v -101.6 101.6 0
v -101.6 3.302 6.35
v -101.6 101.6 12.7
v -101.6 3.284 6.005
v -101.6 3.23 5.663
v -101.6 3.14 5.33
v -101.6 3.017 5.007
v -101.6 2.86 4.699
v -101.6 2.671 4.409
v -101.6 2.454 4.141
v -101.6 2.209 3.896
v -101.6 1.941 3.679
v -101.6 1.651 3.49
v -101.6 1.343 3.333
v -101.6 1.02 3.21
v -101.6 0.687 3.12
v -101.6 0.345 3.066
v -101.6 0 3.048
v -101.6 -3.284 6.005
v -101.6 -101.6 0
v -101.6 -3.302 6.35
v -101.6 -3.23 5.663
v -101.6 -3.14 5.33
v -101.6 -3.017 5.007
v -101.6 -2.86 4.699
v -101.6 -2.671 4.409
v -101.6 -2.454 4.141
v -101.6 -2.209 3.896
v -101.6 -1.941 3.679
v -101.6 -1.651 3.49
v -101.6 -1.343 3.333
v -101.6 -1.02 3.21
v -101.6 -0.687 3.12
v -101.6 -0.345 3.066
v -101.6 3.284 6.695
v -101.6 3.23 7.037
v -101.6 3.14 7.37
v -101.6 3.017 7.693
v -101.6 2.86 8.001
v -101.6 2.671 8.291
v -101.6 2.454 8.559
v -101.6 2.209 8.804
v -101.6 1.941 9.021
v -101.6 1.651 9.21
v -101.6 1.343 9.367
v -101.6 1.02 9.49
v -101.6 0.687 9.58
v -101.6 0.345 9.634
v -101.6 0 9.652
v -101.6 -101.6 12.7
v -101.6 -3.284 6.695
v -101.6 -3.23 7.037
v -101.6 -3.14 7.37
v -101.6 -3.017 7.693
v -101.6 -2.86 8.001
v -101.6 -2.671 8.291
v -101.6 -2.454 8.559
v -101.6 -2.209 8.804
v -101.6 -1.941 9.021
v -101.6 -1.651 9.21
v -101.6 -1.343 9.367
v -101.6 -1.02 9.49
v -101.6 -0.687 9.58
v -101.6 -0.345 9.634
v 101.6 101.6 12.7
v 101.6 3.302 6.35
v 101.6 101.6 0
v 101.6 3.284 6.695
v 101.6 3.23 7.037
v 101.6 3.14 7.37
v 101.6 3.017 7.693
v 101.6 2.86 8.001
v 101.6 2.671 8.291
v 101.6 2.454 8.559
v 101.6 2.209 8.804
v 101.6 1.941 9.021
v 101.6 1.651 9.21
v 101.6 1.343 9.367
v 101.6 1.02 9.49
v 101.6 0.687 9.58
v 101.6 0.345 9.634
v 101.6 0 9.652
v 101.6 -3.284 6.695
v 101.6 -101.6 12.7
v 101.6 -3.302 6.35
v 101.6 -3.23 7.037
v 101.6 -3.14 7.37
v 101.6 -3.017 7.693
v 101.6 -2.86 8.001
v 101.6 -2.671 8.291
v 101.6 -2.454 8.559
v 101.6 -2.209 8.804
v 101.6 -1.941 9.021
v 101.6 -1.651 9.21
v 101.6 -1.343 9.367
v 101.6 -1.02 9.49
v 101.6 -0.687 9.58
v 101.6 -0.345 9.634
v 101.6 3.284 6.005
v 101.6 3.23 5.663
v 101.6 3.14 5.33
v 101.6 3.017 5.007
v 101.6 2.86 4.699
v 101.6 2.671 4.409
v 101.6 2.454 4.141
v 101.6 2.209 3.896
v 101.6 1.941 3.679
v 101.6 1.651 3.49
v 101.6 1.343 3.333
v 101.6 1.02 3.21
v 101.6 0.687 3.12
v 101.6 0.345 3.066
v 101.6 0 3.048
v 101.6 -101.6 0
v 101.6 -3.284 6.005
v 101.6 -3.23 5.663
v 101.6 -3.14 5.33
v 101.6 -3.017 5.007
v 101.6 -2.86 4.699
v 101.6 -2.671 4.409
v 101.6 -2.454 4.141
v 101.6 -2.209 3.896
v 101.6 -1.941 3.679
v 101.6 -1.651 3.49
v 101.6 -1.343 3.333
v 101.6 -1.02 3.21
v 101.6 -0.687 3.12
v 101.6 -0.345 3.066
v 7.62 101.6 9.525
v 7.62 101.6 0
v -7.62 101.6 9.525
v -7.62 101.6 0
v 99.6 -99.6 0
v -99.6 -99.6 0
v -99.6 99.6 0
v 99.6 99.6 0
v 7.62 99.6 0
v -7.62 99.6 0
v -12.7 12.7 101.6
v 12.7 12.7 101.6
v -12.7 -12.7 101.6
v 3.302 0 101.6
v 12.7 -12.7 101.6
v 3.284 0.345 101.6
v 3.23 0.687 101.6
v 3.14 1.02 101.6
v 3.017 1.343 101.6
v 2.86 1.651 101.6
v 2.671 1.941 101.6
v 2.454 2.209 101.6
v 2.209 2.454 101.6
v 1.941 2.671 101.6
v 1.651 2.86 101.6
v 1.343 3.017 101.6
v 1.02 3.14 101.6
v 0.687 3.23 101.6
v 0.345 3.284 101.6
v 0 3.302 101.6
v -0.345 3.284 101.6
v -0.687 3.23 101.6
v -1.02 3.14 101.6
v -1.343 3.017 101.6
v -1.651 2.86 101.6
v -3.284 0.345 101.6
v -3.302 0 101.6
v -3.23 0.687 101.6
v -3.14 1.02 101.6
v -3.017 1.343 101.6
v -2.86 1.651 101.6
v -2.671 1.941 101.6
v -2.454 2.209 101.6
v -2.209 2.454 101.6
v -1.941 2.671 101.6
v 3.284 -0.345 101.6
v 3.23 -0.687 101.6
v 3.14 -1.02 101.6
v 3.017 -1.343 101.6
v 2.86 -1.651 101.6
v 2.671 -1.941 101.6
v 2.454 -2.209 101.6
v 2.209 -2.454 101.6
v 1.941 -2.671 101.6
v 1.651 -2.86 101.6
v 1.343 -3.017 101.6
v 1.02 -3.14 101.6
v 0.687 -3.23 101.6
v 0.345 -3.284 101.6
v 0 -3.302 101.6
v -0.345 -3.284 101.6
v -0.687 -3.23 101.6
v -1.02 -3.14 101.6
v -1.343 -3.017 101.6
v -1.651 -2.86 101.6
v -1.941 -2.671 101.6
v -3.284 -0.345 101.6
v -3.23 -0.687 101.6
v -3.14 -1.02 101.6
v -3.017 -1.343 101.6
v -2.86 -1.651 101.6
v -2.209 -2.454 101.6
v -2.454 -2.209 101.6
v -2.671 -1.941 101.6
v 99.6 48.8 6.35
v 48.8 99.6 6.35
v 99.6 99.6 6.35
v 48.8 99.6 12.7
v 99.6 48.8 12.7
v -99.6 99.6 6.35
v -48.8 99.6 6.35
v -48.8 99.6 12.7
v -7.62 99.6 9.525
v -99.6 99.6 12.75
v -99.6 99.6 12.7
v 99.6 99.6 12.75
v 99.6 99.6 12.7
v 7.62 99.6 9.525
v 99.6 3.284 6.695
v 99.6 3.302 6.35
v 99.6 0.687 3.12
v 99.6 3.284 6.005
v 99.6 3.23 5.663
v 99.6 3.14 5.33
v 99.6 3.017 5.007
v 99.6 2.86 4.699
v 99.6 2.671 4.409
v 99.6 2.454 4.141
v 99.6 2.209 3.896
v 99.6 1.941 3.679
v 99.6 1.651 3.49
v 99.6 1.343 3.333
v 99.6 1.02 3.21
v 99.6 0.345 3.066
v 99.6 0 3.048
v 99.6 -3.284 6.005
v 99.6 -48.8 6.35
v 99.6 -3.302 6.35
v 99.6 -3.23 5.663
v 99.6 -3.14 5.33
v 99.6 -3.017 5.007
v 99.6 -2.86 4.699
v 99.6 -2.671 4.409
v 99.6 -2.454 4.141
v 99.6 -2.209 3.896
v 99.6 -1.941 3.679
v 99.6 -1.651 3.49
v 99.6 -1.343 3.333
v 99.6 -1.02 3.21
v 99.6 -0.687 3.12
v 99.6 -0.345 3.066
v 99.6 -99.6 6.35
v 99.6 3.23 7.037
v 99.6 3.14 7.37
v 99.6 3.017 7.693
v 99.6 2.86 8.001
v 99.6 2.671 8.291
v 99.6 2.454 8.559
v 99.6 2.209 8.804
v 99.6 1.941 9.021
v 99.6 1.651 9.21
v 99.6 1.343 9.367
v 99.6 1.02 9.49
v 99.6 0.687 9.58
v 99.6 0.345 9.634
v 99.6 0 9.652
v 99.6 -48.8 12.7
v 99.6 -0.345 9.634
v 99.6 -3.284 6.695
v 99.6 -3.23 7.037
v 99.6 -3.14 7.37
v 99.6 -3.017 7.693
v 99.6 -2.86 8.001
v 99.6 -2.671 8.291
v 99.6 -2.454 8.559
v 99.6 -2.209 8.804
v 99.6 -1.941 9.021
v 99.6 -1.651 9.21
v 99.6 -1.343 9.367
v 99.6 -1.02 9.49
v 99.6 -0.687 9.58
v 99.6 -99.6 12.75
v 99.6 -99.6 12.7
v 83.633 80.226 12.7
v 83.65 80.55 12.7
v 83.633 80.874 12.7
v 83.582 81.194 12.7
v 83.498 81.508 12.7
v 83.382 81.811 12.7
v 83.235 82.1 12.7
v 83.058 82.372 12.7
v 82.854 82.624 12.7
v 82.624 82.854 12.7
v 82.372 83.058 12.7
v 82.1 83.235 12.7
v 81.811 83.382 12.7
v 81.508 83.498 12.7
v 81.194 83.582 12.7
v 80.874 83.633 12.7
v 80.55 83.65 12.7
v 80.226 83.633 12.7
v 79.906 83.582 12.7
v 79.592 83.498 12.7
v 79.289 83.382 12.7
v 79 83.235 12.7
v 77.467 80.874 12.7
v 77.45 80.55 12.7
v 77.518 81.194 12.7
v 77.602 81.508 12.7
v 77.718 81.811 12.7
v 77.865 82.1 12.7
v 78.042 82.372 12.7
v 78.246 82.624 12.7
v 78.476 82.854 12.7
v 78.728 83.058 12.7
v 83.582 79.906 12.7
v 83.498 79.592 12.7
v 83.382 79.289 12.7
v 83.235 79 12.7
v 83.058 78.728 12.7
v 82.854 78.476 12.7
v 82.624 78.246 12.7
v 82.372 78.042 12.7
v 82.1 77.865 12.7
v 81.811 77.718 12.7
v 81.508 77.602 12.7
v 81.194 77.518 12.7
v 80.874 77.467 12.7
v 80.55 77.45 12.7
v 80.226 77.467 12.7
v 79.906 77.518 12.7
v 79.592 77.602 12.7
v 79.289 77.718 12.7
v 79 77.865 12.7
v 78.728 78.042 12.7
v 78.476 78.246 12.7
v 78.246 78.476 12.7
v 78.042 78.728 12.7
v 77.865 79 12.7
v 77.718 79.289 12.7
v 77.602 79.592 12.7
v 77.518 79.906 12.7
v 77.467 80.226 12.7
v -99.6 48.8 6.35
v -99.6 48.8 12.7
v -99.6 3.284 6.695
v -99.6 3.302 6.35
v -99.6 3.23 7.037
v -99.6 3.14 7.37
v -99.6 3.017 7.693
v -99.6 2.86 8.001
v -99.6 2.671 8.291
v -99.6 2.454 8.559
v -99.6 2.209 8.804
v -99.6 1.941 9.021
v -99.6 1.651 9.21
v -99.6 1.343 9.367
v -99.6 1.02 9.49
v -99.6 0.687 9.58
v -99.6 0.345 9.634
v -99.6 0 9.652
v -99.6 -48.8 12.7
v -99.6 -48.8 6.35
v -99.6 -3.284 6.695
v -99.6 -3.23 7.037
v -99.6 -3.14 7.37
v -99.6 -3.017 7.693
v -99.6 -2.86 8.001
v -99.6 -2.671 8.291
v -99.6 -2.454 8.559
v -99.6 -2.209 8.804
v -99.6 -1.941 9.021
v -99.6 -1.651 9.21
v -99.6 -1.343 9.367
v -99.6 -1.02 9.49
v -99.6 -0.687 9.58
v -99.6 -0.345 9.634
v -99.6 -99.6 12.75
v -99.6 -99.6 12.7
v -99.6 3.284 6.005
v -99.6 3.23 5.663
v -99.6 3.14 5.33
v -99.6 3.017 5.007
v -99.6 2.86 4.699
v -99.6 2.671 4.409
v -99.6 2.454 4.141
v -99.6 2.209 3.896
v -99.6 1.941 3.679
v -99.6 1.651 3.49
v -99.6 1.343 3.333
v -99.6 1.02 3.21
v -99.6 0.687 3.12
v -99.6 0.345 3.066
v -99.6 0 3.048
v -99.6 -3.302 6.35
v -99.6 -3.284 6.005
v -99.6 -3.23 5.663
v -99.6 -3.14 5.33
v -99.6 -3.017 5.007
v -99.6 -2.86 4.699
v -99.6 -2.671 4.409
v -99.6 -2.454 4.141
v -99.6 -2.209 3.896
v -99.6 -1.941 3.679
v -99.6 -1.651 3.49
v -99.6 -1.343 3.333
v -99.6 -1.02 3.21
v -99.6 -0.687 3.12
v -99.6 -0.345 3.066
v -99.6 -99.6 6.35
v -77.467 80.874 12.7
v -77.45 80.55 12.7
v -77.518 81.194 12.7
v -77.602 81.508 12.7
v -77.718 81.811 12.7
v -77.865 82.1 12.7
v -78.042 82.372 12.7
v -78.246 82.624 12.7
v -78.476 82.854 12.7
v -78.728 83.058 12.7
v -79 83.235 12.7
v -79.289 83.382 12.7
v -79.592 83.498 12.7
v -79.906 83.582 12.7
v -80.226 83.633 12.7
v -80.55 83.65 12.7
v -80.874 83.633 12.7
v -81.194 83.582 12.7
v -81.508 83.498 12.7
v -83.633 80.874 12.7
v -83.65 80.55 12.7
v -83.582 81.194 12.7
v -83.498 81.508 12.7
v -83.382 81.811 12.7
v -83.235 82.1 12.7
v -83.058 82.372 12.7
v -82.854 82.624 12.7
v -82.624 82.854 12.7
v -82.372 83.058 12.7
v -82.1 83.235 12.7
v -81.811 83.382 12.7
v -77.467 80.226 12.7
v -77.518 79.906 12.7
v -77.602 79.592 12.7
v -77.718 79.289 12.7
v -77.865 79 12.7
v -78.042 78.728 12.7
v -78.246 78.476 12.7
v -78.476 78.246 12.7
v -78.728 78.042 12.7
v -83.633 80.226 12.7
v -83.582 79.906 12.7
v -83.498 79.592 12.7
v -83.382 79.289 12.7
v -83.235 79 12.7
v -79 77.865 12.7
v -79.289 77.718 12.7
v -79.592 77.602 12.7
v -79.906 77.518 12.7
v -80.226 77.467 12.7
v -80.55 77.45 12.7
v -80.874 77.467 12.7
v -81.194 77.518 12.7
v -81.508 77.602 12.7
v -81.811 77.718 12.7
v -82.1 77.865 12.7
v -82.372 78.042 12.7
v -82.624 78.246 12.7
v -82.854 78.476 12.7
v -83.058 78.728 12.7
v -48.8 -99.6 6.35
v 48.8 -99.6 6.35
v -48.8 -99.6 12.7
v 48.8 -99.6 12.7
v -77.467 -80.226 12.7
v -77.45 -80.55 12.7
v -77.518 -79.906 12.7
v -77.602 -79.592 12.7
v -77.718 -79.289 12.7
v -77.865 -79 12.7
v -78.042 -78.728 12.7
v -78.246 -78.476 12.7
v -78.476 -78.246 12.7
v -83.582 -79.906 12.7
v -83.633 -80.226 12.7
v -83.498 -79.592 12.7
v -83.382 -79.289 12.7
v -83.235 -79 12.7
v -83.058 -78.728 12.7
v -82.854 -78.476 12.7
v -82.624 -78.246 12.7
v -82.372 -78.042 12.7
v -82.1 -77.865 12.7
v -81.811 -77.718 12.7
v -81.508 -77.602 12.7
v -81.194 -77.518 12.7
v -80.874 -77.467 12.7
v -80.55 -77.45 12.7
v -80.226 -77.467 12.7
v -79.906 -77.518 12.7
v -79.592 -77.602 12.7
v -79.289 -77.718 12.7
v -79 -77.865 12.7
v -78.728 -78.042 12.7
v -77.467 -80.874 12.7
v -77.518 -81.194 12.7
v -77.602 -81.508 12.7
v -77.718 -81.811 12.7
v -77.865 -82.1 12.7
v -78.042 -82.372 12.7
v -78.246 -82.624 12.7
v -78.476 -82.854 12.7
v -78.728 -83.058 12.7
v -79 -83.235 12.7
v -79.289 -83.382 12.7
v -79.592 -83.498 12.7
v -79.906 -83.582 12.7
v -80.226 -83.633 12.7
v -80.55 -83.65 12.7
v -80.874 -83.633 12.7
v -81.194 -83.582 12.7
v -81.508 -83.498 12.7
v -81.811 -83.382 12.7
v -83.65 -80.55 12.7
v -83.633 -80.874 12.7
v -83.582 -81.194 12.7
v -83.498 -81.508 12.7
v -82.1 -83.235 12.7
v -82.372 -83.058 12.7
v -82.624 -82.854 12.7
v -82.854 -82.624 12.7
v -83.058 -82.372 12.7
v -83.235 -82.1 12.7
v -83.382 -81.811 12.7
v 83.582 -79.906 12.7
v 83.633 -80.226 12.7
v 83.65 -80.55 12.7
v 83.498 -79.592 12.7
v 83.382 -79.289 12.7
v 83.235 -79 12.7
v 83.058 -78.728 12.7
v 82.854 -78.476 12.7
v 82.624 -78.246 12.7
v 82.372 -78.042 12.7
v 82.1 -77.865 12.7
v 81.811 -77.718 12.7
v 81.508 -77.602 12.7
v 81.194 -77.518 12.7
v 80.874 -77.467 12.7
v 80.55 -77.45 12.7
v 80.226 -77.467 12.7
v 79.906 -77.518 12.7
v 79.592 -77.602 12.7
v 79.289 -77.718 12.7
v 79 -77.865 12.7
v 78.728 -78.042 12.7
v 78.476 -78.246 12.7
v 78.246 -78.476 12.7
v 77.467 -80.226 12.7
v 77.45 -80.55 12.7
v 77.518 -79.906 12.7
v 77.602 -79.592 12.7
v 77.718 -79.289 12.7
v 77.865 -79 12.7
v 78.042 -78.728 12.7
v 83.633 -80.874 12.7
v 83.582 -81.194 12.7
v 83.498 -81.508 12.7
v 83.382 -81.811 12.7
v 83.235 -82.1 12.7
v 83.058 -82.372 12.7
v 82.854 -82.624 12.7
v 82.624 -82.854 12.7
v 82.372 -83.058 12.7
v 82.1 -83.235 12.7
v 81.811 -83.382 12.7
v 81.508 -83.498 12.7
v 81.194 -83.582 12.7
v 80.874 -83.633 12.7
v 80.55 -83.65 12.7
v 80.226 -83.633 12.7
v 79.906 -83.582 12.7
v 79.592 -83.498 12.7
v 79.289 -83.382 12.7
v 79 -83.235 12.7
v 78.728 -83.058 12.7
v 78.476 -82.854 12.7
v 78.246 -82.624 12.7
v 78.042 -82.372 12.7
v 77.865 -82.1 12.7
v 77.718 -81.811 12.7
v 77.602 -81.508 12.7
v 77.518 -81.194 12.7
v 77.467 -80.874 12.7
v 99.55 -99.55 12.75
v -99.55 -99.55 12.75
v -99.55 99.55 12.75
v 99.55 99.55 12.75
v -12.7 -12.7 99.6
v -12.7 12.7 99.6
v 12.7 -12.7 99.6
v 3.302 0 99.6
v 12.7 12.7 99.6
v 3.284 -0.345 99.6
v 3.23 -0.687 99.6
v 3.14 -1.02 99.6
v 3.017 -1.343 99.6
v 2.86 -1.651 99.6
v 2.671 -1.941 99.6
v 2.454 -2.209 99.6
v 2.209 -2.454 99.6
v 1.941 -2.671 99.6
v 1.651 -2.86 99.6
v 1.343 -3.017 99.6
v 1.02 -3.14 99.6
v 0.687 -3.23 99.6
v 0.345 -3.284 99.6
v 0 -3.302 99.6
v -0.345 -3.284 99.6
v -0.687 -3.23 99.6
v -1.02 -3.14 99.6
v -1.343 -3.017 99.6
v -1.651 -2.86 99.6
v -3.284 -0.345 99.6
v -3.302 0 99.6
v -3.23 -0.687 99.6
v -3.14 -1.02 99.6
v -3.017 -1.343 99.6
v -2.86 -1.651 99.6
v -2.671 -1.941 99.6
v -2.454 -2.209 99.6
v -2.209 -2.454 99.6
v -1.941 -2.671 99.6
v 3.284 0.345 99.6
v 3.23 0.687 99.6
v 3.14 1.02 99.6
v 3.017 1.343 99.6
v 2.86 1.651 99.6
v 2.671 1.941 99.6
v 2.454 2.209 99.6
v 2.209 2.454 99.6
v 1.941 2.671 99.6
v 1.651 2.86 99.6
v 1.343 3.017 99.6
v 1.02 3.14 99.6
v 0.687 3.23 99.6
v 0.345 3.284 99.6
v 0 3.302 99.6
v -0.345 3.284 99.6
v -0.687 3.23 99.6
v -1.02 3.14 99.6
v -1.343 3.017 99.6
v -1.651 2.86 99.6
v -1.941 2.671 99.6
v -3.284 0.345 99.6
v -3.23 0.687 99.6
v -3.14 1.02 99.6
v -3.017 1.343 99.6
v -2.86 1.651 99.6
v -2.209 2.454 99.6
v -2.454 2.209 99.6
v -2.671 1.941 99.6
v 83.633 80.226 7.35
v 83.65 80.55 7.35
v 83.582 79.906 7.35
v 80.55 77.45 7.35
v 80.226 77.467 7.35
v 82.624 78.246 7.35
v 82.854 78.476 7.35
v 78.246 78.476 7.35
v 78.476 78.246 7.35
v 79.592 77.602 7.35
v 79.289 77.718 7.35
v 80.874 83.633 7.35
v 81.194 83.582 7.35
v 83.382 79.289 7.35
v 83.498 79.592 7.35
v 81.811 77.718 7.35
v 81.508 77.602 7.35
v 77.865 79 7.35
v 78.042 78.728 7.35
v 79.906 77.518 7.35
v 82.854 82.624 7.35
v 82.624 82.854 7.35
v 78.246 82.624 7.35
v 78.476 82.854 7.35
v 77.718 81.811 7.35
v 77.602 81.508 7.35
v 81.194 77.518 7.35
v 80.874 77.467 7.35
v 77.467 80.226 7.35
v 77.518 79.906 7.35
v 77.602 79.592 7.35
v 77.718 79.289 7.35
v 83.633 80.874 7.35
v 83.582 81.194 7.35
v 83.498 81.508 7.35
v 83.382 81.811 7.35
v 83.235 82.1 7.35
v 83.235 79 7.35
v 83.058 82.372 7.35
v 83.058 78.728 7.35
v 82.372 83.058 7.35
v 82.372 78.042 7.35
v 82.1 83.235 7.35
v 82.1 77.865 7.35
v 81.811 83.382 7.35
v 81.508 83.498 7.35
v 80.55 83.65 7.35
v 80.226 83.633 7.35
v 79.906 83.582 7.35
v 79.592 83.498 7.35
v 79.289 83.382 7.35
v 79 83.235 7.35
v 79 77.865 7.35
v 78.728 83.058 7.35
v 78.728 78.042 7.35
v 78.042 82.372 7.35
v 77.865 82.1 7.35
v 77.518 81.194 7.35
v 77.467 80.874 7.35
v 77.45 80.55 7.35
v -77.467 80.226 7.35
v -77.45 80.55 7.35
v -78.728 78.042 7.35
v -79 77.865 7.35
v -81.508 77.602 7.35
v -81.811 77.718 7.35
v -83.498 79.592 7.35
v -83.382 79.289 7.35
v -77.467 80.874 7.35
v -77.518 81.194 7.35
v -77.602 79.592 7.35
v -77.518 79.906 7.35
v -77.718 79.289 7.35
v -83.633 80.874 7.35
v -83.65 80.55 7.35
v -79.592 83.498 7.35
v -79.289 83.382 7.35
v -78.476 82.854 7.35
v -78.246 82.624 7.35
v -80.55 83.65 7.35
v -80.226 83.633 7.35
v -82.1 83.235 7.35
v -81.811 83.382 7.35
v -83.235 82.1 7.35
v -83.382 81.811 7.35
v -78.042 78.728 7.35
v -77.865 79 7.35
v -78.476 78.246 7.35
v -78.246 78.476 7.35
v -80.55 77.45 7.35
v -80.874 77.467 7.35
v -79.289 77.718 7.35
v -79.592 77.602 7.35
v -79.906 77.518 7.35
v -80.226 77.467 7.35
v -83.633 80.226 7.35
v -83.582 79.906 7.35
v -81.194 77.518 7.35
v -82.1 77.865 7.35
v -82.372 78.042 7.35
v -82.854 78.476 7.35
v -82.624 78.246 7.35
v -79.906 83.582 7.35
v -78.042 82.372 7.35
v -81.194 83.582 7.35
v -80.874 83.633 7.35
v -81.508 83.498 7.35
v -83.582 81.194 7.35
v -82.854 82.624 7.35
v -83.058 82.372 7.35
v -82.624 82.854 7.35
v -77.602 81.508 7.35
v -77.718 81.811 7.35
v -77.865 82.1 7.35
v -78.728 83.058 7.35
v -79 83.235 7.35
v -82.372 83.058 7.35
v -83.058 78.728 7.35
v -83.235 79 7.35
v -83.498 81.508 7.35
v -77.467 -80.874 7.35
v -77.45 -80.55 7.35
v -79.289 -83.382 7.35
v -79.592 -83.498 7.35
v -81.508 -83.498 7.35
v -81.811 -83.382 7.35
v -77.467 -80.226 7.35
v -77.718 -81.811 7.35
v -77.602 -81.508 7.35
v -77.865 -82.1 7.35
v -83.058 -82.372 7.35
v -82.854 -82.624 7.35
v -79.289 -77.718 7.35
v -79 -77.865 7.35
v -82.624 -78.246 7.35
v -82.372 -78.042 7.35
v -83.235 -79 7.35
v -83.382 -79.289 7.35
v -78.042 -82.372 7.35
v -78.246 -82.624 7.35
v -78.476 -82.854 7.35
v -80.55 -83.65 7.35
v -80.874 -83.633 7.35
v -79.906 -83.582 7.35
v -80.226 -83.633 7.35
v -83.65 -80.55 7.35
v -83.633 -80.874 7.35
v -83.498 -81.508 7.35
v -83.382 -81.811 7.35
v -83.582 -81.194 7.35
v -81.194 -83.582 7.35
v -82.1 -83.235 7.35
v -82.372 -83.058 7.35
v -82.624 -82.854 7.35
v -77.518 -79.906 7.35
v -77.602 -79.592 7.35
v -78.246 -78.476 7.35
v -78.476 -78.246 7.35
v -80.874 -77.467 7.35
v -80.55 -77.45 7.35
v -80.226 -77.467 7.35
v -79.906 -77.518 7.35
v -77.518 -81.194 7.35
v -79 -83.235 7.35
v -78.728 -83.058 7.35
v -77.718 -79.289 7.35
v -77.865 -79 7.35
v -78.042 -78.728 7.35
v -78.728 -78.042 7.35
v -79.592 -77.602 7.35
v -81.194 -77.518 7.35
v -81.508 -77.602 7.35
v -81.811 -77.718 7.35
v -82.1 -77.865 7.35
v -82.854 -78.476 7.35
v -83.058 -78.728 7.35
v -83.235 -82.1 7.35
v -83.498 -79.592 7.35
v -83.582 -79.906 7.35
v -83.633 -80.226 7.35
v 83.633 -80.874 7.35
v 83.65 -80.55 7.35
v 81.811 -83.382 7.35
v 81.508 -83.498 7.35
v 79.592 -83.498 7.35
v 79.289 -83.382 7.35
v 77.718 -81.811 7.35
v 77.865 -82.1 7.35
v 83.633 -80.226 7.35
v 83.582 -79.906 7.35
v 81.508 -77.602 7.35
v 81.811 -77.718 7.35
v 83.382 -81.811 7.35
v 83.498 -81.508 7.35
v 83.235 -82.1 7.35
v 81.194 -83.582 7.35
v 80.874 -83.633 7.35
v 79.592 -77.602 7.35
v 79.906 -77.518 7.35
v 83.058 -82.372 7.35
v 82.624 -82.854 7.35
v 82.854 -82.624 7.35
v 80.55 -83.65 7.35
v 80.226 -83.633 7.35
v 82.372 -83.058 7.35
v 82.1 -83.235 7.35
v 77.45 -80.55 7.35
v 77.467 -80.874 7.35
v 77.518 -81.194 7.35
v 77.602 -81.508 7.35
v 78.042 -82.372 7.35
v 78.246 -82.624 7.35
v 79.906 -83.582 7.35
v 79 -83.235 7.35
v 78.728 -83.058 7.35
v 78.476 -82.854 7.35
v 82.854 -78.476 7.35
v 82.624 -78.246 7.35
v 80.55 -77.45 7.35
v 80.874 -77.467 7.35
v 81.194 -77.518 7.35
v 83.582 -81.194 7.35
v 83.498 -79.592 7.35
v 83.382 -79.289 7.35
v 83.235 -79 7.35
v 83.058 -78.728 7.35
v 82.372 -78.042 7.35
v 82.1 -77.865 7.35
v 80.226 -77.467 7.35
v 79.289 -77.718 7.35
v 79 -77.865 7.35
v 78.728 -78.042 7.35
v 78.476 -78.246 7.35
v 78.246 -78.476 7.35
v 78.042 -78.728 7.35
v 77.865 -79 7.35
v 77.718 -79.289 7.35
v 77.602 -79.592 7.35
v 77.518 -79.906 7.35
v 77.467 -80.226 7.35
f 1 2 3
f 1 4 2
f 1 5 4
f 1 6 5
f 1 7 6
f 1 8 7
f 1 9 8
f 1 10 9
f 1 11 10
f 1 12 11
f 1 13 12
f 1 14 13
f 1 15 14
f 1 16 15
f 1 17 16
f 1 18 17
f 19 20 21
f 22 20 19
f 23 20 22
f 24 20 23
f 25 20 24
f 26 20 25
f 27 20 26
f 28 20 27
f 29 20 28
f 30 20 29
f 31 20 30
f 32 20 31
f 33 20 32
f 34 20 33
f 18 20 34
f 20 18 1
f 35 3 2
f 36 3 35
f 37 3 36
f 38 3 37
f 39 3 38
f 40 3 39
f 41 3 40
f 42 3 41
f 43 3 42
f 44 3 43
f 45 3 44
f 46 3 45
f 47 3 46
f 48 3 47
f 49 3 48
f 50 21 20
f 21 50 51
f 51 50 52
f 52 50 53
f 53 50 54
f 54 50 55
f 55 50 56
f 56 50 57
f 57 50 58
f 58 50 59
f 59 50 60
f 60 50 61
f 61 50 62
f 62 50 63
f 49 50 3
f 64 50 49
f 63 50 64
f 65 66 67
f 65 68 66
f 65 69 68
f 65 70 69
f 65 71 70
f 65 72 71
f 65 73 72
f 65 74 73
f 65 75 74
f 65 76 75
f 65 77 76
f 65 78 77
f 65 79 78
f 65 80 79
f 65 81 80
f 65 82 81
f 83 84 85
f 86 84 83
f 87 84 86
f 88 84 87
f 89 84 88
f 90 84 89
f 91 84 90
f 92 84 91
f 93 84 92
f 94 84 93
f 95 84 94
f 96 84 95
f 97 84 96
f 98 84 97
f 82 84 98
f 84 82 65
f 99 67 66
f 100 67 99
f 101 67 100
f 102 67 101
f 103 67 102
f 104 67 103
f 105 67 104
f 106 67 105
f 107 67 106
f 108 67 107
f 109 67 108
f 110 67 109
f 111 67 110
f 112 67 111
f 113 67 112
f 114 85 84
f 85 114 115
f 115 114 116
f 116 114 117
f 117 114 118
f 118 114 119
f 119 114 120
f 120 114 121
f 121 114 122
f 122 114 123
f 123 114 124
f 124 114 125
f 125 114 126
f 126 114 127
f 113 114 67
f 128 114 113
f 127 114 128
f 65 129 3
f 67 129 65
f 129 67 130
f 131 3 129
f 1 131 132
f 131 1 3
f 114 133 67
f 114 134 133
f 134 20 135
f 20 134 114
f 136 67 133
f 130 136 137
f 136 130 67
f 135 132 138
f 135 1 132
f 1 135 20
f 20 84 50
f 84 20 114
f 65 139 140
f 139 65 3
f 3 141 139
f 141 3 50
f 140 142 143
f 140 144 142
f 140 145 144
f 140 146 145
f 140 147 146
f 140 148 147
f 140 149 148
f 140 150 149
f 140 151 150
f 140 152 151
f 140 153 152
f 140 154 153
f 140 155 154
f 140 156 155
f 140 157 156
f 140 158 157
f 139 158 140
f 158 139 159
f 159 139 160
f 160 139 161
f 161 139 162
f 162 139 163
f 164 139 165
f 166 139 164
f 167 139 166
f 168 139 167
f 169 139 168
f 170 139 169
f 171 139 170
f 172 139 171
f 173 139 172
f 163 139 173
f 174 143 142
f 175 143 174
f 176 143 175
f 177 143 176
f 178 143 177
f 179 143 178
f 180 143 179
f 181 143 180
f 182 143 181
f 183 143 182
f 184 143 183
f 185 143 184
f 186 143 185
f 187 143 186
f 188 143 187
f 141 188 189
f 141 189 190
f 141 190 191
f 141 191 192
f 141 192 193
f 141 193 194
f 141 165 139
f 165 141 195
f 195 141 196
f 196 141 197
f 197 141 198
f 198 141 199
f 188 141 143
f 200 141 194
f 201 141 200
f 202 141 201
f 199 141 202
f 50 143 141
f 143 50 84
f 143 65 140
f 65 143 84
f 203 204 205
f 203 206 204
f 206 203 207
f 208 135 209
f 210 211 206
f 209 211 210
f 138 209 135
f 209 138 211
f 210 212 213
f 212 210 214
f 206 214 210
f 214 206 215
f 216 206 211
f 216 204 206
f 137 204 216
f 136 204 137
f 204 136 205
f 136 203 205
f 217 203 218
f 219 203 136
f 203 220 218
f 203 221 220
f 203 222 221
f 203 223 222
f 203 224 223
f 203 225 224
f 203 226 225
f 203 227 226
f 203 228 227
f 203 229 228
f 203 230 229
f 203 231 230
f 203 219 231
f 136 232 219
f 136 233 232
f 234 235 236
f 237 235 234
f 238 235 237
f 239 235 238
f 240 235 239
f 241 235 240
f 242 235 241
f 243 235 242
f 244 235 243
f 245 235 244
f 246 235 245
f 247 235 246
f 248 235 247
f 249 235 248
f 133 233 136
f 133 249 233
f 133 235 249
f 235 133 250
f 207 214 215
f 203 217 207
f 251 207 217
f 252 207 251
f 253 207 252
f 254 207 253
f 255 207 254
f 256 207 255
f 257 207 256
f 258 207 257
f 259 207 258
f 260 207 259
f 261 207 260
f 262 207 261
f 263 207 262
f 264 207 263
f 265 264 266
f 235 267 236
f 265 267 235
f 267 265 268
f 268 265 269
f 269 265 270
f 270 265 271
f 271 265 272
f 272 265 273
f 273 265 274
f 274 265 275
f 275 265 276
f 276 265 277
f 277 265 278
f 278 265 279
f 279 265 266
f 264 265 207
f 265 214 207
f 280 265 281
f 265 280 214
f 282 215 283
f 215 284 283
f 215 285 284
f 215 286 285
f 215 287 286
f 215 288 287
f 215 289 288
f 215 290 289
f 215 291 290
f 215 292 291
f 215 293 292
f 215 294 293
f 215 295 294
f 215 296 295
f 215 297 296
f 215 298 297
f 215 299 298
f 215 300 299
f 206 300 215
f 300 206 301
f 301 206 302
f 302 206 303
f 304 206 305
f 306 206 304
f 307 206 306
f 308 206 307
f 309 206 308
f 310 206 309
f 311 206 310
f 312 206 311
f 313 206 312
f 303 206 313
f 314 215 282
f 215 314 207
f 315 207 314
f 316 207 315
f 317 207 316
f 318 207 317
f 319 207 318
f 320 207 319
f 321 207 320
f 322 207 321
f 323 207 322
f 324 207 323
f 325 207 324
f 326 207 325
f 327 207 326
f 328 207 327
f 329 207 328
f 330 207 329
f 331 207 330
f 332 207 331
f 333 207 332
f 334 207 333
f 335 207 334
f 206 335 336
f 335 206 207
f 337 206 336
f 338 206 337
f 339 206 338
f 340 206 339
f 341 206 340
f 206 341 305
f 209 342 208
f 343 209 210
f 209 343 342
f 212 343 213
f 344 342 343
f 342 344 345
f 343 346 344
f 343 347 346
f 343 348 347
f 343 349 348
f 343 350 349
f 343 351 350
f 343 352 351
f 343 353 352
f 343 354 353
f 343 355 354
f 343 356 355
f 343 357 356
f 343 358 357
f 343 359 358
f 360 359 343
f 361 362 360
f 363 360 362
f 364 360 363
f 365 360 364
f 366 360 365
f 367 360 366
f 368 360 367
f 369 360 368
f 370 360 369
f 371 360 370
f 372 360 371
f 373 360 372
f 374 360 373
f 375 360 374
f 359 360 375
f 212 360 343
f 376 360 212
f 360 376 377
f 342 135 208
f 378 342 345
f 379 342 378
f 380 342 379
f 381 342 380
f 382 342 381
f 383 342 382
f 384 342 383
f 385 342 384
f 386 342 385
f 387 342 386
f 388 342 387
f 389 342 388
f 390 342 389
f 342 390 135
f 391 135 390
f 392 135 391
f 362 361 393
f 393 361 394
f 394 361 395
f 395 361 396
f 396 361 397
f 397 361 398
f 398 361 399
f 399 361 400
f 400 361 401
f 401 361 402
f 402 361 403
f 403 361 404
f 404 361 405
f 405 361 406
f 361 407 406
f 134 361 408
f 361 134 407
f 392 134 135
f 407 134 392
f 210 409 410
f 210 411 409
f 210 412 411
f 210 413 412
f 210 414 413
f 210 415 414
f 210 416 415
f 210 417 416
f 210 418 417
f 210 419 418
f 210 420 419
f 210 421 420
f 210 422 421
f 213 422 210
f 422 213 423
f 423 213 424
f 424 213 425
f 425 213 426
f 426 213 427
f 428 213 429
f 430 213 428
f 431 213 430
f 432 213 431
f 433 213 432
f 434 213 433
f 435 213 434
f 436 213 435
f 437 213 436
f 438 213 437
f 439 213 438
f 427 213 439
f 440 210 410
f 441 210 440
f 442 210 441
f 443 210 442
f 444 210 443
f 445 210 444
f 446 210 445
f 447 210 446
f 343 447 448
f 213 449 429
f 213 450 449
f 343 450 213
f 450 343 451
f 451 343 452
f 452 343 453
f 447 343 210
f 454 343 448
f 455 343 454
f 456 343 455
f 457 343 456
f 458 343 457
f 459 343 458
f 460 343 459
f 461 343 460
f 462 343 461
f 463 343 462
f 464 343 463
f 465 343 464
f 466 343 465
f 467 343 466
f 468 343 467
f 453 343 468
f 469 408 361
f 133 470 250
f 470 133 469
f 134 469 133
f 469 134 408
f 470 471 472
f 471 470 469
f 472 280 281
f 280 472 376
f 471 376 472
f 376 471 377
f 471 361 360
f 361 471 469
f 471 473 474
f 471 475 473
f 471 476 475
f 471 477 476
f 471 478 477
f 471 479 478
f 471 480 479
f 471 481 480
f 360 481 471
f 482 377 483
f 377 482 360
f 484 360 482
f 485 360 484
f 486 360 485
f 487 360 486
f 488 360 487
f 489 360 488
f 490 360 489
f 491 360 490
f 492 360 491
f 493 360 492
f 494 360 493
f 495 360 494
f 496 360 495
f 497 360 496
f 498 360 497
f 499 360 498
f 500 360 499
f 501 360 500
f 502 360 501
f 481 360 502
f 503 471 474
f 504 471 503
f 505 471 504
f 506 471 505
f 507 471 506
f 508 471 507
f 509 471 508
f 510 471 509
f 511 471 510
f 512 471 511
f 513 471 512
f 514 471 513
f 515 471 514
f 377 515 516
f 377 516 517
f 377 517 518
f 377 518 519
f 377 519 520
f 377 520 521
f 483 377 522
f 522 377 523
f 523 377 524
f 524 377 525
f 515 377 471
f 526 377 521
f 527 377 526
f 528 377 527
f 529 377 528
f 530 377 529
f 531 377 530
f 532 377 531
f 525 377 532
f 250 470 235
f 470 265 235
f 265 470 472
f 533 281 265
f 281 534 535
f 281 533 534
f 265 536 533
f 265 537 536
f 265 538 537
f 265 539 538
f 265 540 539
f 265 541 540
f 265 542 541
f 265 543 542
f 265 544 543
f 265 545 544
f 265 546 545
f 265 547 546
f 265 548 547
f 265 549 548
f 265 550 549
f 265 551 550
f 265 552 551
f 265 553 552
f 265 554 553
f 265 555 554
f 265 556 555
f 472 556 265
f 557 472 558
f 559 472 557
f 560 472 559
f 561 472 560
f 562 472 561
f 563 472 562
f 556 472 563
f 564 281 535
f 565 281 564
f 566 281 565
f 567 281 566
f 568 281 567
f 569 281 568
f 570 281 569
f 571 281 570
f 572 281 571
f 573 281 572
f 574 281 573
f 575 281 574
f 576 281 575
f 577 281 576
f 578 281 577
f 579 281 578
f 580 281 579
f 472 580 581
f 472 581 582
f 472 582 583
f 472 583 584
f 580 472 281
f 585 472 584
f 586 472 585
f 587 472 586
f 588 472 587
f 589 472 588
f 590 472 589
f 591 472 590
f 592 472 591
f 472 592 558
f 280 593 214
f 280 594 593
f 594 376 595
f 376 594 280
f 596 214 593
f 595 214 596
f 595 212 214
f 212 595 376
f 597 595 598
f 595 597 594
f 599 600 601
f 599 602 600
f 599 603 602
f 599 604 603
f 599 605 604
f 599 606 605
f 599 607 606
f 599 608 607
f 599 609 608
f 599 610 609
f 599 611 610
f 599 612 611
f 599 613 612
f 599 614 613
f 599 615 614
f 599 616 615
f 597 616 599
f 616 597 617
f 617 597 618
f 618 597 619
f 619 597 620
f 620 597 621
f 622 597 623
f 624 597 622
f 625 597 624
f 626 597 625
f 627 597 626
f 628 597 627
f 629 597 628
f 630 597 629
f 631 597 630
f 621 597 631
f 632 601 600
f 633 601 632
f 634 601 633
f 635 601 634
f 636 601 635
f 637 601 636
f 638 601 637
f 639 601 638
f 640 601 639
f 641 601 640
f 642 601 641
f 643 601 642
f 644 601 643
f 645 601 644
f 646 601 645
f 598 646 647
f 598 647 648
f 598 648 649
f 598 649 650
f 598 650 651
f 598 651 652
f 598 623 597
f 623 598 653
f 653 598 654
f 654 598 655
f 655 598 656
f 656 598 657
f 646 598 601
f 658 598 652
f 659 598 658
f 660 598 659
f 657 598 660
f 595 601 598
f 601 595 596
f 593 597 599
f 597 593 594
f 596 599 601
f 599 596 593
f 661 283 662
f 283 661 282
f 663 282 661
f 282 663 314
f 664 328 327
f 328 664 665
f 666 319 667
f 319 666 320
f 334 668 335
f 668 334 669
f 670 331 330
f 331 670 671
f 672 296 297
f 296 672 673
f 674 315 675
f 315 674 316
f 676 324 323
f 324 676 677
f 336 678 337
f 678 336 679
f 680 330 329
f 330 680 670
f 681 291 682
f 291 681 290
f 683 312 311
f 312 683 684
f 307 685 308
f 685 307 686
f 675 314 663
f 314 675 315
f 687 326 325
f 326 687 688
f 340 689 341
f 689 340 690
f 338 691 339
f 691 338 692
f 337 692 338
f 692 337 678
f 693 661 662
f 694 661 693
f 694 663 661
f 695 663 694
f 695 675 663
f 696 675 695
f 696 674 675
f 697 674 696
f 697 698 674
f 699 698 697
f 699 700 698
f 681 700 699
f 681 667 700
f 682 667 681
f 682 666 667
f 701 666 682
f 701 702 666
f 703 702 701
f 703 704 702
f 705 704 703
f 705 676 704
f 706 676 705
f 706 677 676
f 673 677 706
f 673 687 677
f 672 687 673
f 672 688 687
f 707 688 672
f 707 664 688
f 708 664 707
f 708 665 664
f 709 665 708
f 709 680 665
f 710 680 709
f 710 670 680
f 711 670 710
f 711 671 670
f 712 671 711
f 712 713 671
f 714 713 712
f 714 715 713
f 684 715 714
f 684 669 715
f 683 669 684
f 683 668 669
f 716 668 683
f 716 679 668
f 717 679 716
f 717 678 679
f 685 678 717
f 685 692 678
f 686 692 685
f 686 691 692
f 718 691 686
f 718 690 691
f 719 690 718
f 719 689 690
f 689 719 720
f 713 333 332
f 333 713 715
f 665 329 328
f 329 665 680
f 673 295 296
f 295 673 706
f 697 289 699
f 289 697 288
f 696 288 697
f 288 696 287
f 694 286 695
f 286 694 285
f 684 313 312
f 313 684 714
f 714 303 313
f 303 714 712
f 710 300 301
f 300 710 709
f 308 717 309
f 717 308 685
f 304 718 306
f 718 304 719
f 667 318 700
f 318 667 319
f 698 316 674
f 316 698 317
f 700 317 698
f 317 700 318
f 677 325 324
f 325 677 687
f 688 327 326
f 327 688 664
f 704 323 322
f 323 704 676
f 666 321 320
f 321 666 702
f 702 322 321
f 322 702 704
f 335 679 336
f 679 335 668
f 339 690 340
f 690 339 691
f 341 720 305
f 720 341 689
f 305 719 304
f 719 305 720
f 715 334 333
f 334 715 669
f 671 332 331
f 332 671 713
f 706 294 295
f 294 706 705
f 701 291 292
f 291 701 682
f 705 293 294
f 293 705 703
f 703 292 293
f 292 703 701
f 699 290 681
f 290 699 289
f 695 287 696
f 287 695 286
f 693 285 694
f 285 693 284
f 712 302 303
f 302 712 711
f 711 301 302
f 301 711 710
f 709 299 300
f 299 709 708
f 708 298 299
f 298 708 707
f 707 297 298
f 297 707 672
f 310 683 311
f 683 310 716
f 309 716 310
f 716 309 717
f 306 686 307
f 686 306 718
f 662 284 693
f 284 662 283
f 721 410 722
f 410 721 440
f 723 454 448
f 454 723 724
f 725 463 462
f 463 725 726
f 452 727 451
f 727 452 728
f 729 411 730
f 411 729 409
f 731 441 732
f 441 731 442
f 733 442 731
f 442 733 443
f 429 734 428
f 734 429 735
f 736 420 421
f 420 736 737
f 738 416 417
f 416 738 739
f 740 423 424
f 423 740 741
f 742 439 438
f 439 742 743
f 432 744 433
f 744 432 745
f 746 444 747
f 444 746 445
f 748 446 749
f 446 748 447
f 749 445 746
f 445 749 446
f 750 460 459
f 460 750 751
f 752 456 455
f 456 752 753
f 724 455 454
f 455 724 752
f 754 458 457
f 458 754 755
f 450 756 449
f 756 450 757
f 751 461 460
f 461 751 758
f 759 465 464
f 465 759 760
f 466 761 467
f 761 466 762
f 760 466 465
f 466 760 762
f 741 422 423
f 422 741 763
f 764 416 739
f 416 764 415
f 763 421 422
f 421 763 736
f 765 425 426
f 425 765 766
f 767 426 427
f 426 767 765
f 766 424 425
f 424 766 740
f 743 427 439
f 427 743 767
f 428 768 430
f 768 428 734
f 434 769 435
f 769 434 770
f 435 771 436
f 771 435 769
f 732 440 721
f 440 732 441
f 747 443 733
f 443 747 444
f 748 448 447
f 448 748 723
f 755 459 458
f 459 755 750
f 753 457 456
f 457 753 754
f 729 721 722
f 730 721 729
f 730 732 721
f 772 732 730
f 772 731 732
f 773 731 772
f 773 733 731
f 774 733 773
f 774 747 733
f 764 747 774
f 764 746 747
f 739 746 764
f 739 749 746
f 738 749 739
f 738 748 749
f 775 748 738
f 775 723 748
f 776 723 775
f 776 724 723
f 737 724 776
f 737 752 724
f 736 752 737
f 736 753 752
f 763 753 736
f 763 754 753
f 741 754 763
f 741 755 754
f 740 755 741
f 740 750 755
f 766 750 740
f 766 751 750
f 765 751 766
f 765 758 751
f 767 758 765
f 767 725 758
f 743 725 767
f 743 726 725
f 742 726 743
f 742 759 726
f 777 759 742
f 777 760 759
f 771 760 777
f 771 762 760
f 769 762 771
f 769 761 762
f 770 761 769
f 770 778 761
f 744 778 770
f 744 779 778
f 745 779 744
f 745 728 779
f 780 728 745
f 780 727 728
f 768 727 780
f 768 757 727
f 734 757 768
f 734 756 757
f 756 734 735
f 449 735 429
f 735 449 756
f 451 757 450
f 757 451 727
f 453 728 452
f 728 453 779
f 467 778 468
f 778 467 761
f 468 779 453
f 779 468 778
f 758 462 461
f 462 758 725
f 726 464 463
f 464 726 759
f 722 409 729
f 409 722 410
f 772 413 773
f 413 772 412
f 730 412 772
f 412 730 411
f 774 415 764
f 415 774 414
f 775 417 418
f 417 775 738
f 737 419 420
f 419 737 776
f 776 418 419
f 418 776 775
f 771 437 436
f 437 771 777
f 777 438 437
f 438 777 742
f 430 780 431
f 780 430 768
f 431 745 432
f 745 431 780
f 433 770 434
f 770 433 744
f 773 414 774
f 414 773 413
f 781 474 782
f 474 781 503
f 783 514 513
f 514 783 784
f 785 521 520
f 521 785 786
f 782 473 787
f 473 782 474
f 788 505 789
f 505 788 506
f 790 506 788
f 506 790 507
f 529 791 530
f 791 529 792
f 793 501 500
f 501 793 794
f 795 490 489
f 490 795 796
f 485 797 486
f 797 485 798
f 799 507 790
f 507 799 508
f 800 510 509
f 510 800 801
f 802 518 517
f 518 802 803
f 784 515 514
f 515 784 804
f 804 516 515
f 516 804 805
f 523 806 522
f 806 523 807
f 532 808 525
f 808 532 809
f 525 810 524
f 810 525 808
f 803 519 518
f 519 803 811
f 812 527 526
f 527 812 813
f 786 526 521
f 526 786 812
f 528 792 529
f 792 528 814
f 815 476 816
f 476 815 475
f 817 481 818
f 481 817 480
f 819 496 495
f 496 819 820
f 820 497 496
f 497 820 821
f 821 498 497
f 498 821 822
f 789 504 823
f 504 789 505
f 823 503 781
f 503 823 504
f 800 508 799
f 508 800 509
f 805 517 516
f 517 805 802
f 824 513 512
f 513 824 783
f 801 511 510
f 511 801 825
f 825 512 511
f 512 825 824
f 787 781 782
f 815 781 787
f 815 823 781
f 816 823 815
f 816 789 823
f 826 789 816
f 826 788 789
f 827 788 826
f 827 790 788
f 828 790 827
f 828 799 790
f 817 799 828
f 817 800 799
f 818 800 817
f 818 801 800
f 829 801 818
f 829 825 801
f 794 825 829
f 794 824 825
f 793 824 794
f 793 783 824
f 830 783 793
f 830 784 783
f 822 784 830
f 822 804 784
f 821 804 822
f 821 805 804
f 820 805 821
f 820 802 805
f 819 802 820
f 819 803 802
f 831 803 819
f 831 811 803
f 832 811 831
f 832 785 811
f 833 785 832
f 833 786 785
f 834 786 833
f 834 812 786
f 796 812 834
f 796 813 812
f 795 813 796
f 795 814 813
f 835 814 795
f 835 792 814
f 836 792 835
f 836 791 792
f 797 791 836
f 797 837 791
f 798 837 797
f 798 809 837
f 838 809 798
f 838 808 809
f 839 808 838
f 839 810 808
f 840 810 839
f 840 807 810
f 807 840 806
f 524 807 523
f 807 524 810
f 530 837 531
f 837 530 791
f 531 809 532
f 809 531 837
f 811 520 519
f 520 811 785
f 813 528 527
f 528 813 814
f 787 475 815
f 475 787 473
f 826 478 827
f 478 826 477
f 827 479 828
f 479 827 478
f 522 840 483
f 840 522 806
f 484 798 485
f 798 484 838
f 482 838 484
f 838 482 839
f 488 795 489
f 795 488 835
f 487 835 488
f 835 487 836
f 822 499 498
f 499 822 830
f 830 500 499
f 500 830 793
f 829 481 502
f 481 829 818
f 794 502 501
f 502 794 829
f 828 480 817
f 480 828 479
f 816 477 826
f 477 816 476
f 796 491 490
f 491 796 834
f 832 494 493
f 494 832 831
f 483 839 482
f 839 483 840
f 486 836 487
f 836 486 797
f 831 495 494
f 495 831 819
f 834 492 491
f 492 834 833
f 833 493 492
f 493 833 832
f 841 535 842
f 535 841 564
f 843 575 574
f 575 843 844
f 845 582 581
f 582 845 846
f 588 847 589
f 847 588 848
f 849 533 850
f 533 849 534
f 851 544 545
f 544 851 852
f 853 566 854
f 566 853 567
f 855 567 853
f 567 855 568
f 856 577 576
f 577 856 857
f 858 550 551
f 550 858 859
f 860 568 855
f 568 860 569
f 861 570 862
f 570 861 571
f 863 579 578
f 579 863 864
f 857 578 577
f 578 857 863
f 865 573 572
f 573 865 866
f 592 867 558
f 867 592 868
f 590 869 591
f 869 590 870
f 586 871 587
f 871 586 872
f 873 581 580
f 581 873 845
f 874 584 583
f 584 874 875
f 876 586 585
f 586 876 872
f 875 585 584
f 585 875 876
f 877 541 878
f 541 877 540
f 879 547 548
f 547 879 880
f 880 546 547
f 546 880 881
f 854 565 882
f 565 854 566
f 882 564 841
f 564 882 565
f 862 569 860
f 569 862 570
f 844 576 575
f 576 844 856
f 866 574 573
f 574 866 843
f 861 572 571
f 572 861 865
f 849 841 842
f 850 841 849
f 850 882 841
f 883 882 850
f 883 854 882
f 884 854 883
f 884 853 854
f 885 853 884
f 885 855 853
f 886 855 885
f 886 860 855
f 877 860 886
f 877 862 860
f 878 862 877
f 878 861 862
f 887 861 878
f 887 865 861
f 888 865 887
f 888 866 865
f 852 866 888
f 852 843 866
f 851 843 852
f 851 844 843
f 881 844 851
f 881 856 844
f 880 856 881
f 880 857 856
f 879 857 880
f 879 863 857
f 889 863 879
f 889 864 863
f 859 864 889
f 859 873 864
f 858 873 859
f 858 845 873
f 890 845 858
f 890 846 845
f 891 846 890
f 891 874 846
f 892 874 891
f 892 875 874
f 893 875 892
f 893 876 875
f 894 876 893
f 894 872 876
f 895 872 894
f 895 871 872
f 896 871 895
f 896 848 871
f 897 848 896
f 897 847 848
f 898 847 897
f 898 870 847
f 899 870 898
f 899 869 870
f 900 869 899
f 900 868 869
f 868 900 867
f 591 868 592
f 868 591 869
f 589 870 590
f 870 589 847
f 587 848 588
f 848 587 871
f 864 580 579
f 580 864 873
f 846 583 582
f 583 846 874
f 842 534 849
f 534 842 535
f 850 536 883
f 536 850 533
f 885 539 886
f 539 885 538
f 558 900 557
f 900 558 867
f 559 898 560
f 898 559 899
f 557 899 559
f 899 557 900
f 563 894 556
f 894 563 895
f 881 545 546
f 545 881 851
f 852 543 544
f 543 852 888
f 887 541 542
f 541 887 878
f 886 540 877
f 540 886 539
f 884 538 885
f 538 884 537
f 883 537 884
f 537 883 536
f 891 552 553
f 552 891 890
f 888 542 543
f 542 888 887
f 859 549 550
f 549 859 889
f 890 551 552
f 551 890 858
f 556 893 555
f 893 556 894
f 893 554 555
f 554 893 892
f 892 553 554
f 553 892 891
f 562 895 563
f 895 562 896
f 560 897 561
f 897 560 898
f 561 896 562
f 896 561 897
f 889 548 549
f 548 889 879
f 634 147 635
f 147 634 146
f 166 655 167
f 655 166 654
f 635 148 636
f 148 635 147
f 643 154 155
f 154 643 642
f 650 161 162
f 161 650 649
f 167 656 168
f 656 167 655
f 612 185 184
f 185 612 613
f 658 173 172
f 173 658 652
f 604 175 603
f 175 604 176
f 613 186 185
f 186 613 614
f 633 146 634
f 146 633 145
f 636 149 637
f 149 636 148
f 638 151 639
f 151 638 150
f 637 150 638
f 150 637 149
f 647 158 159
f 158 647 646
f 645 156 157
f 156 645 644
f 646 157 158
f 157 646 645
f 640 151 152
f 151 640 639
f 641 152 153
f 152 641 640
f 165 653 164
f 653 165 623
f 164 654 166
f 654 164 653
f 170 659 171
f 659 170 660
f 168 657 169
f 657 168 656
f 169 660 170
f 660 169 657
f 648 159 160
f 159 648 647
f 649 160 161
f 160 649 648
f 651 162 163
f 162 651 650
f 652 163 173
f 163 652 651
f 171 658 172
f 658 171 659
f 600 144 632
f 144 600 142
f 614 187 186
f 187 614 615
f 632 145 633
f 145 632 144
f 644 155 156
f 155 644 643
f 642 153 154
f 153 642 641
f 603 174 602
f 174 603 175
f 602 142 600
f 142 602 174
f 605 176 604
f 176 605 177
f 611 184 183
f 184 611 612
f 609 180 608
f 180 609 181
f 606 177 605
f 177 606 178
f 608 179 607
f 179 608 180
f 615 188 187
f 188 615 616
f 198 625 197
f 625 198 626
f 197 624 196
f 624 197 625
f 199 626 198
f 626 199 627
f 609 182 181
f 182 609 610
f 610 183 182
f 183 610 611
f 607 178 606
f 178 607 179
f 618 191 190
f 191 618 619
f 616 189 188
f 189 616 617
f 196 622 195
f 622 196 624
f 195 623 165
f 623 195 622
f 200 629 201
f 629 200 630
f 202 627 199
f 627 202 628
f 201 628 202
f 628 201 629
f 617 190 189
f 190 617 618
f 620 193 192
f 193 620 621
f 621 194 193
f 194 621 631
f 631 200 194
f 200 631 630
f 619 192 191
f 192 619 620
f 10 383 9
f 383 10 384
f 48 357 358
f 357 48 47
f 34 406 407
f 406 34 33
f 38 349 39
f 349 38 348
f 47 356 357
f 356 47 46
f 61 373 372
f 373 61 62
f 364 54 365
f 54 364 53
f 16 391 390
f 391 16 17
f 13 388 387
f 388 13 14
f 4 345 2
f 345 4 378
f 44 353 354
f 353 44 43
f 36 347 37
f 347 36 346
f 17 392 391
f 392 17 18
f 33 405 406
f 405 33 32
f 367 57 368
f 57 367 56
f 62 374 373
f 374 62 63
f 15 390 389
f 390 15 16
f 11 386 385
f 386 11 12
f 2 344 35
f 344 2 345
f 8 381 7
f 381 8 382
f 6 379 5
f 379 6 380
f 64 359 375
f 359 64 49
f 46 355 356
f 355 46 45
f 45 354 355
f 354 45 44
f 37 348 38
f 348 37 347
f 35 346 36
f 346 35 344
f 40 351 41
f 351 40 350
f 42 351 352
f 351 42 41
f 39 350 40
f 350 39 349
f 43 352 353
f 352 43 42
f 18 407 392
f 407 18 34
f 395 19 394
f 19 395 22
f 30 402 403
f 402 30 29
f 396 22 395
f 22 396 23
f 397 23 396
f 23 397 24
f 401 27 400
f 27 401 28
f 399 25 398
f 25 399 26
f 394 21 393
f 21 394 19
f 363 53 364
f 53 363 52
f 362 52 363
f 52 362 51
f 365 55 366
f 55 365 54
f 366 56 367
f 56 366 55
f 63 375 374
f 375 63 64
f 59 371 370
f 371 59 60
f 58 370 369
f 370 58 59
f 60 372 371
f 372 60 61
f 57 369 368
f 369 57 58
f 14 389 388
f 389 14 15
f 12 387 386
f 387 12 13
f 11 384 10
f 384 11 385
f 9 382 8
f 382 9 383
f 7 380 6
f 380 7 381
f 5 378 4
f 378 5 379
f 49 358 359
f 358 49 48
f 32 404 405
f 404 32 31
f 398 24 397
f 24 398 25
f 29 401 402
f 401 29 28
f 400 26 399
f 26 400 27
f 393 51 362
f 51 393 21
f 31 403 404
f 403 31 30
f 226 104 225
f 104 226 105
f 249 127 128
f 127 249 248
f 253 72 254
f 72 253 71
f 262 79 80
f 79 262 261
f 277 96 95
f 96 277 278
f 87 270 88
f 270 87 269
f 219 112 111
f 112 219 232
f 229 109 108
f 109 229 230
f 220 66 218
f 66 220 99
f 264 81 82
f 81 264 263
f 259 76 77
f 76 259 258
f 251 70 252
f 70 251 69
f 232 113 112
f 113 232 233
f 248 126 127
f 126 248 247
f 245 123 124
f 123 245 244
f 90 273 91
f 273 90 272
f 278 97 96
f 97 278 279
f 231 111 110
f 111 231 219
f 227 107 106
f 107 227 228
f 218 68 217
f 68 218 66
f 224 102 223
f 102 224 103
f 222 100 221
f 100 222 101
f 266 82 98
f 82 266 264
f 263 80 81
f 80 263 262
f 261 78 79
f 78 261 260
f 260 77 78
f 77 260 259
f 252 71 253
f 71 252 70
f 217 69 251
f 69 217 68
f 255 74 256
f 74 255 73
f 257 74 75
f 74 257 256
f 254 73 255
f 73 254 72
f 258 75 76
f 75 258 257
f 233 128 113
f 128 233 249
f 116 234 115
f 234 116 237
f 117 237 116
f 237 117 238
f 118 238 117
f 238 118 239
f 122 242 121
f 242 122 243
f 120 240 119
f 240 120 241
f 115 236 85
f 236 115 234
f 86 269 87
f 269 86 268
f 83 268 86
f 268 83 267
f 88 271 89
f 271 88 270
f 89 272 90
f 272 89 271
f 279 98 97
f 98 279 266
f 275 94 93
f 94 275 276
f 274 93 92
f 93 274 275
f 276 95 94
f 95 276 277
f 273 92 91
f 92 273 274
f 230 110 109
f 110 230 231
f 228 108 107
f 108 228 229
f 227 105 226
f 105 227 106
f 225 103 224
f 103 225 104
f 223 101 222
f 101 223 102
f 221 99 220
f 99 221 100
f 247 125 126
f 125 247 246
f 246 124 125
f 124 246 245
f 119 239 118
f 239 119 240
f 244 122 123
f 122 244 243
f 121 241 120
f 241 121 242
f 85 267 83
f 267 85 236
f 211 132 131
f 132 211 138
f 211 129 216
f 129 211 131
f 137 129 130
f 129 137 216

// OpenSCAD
// All-Seeing Eye Enclosure Design
// Version: 1.6
// Changes: Added corner magnet blocks to mate with Base Plate v1.0

/* [Global Dimensions] */
INCH = 25.4;

// Base Specifications
base_width = 8.0 * INCH;
base_height = 0.5 * INCH; // The vertical rim before slope
wall_thickness = 2.0;

// Pyramid Specifications
slope_angle = 45; 
top_width = 1.0 * INCH; 
pyramid_height = (base_width - top_width) / 2;

// Connector Dimensions
sma_hole_diameter = 0.26 * INCH;
usb_cutout_width = 0.6 * INCH;
usb_cutout_height = 0.3 * INCH;

// Magnetic Latch Specifications
tri_leg = 2.0 * INCH; // Size of corner block
// Base plate is external/underneath. Tabs project 0.25 inch into shell.
block_start_z = 0.25 * INCH;
block_height = 0.25 * INCH; 
magnet_diam = 6.2;
// We drill from the top of the block (Z=0.75) downwards.
// We want the magnet close to the bottom of the block (Z=0.5).
// magnet_hole_depth should be block_height - 1mm bridge.
magnet_hole_depth = block_height - 1.0; 

/* [Rendering resolution] */
$fn = 60;

module shell_main() {
    difference() {
        // 1. Positive Volume (The Shell)
        union() {
            // A. Base Prism
            translate([0, 0, base_height/2])
                cube([base_width, base_width, base_height], center=true);
            
            // B. Pyramid Frustum
            translate([0, 0, base_height])
                pyramid_frustum(base_width, top_width, pyramid_height);
        }

        // 2. Negative Volume (The Hollow)
        union() {
            difference() {
                // A. Hollow Base
                translate([0, 0, base_height/2])
                    cube([base_width - 2*wall_thickness, base_width - 2*wall_thickness, base_height + 0.1], center=true);
                
                // EXCLUDE corners from the hollow (creating solid blocks)
                // NOW RELEVEANT because blocks start at 0.25", inside this 0.5" zone.
                if(true) {
                    offset_dist = base_width/2 - wall_thickness;
                    translate([0,0, block_start_z])
                        corner_blocks(tri_leg, block_height, offset_dist);
                }
            }

            difference() {
                // B. Hollow Pyramid
                inner_height = pyramid_height - wall_thickness;
                inner_base_width = base_width - 2*wall_thickness;
                inner_top_width = top_width;

                translate([0, 0, base_height])
                     pyramid_frustum(inner_base_width, inner_top_width, inner_height);
                
                // EXCLUDE corners from the hollow pyramid here
                if(true) {
                    offset_dist = base_width/2 - wall_thickness;
                    
                    // Blocks start at block_start_z (0.5).
                    // This is relative to Z=0.
                    // The Hollow Pyramid is translated to base_height.
                    // So we must match coordinates.
                    translate([0,0, block_start_z])
                        corner_blocks(tri_leg, block_height, offset_dist);
                }
            }
        }

        // 3. Cutouts / Holes
        
        // A. Top SMA Connector (Apex)
        translate([0, 0, base_height + pyramid_height - wall_thickness - 1]) 
            cylinder(h = wall_thickness + 2, d = sma_hole_diameter, center = false);

        // B. Left Face SMA (WiFi)
        translate([-base_width/2 + wall_thickness/2, 0, base_height/2])
            rotate([0, 90, 0])
            cylinder(h = wall_thickness + 2, d = sma_hole_diameter, center = true);

        // C. Right Face SMA (Meshtastic)
        translate([base_width/2 - wall_thickness/2, 0, base_height/2])
            rotate([0, 90, 0])
            cylinder(h = wall_thickness + 2, d = sma_hole_diameter, center = true);

        // D. Rear Face USB
        translate([0, base_width/2 - wall_thickness/2, 0])
            cube([usb_cutout_width, wall_thickness + 2, base_height*1.5], center = true);
            
        // E. Magnet Recesses using magnet_diam
        // Drilled into the top of the corner blocks
        magnet_recesses();
    }
}

module pyramid_frustum(base_w, top_w, h) {
    r_base = (base_w / 2) * sqrt(2);
    r_top = (top_w / 2) * sqrt(2);
    
    rotate([0, 0, 45])
        cylinder(h=h, r1=r_base, r2=r_top, $fn=4);
}

module corner_blocks(leg, h, offset_dist) {
    // Generates 4 corner triangles
    // Origin is center of assembly. 
    // This module is translated to the correct Z height in 'main'.
    
    // Corner 1 (+X, +Y)
    translate([offset_dist, offset_dist, 0]) rotate([0,0,180]) corner_triangle(leg, h);
    
    // Corner 2 (-X, +Y)
    translate([-offset_dist, offset_dist, 0]) rotate([0,0,-90]) corner_triangle(leg, h);
    
    // Corner 3 (-X, -Y)
    translate([-offset_dist, -offset_dist, 0]) rotate([0,0,0]) corner_triangle(leg, h);
    
    // Corner 4 (+X, -Y)
    translate([offset_dist, -offset_dist, 0]) rotate([0,0,90]) corner_triangle(leg, h);
}

module corner_triangle(leg, h) {
    // Extrudes UP from Z=0 local
    linear_extrude(h) {
        polygon([
            [0,0], 
            [leg, 0], 
            [0, leg]
        ]);
    }
}

module magnet_recesses() {
    offset_dist = base_width/2 - wall_thickness;
    mag_offset = 0.75 * INCH;
    
    px = offset_dist - mag_offset; // Relative to center
    py = offset_dist - mag_offset;
    
    // Recess starts at Top of Block (z = 0.5 + 0.25 = 0.75)
    // block_start_z = 0.5. block_height = 0.25. Top = 0.75.
    
    drill_start_z = block_start_z + block_height + 0.1; 
    
    positions = [
        [px, py],
        [-px, py],
        [-px, -py],
        [px, -py]
    ];
    
    for(pos = positions) {
        translate([pos[0], pos[1], drill_start_z])
            rotate([180, 0, 0]) // Flip to drill down
            cylinder(h = magnet_hole_depth + 0.1, d = magnet_diam);
    }
}

shell_main();
